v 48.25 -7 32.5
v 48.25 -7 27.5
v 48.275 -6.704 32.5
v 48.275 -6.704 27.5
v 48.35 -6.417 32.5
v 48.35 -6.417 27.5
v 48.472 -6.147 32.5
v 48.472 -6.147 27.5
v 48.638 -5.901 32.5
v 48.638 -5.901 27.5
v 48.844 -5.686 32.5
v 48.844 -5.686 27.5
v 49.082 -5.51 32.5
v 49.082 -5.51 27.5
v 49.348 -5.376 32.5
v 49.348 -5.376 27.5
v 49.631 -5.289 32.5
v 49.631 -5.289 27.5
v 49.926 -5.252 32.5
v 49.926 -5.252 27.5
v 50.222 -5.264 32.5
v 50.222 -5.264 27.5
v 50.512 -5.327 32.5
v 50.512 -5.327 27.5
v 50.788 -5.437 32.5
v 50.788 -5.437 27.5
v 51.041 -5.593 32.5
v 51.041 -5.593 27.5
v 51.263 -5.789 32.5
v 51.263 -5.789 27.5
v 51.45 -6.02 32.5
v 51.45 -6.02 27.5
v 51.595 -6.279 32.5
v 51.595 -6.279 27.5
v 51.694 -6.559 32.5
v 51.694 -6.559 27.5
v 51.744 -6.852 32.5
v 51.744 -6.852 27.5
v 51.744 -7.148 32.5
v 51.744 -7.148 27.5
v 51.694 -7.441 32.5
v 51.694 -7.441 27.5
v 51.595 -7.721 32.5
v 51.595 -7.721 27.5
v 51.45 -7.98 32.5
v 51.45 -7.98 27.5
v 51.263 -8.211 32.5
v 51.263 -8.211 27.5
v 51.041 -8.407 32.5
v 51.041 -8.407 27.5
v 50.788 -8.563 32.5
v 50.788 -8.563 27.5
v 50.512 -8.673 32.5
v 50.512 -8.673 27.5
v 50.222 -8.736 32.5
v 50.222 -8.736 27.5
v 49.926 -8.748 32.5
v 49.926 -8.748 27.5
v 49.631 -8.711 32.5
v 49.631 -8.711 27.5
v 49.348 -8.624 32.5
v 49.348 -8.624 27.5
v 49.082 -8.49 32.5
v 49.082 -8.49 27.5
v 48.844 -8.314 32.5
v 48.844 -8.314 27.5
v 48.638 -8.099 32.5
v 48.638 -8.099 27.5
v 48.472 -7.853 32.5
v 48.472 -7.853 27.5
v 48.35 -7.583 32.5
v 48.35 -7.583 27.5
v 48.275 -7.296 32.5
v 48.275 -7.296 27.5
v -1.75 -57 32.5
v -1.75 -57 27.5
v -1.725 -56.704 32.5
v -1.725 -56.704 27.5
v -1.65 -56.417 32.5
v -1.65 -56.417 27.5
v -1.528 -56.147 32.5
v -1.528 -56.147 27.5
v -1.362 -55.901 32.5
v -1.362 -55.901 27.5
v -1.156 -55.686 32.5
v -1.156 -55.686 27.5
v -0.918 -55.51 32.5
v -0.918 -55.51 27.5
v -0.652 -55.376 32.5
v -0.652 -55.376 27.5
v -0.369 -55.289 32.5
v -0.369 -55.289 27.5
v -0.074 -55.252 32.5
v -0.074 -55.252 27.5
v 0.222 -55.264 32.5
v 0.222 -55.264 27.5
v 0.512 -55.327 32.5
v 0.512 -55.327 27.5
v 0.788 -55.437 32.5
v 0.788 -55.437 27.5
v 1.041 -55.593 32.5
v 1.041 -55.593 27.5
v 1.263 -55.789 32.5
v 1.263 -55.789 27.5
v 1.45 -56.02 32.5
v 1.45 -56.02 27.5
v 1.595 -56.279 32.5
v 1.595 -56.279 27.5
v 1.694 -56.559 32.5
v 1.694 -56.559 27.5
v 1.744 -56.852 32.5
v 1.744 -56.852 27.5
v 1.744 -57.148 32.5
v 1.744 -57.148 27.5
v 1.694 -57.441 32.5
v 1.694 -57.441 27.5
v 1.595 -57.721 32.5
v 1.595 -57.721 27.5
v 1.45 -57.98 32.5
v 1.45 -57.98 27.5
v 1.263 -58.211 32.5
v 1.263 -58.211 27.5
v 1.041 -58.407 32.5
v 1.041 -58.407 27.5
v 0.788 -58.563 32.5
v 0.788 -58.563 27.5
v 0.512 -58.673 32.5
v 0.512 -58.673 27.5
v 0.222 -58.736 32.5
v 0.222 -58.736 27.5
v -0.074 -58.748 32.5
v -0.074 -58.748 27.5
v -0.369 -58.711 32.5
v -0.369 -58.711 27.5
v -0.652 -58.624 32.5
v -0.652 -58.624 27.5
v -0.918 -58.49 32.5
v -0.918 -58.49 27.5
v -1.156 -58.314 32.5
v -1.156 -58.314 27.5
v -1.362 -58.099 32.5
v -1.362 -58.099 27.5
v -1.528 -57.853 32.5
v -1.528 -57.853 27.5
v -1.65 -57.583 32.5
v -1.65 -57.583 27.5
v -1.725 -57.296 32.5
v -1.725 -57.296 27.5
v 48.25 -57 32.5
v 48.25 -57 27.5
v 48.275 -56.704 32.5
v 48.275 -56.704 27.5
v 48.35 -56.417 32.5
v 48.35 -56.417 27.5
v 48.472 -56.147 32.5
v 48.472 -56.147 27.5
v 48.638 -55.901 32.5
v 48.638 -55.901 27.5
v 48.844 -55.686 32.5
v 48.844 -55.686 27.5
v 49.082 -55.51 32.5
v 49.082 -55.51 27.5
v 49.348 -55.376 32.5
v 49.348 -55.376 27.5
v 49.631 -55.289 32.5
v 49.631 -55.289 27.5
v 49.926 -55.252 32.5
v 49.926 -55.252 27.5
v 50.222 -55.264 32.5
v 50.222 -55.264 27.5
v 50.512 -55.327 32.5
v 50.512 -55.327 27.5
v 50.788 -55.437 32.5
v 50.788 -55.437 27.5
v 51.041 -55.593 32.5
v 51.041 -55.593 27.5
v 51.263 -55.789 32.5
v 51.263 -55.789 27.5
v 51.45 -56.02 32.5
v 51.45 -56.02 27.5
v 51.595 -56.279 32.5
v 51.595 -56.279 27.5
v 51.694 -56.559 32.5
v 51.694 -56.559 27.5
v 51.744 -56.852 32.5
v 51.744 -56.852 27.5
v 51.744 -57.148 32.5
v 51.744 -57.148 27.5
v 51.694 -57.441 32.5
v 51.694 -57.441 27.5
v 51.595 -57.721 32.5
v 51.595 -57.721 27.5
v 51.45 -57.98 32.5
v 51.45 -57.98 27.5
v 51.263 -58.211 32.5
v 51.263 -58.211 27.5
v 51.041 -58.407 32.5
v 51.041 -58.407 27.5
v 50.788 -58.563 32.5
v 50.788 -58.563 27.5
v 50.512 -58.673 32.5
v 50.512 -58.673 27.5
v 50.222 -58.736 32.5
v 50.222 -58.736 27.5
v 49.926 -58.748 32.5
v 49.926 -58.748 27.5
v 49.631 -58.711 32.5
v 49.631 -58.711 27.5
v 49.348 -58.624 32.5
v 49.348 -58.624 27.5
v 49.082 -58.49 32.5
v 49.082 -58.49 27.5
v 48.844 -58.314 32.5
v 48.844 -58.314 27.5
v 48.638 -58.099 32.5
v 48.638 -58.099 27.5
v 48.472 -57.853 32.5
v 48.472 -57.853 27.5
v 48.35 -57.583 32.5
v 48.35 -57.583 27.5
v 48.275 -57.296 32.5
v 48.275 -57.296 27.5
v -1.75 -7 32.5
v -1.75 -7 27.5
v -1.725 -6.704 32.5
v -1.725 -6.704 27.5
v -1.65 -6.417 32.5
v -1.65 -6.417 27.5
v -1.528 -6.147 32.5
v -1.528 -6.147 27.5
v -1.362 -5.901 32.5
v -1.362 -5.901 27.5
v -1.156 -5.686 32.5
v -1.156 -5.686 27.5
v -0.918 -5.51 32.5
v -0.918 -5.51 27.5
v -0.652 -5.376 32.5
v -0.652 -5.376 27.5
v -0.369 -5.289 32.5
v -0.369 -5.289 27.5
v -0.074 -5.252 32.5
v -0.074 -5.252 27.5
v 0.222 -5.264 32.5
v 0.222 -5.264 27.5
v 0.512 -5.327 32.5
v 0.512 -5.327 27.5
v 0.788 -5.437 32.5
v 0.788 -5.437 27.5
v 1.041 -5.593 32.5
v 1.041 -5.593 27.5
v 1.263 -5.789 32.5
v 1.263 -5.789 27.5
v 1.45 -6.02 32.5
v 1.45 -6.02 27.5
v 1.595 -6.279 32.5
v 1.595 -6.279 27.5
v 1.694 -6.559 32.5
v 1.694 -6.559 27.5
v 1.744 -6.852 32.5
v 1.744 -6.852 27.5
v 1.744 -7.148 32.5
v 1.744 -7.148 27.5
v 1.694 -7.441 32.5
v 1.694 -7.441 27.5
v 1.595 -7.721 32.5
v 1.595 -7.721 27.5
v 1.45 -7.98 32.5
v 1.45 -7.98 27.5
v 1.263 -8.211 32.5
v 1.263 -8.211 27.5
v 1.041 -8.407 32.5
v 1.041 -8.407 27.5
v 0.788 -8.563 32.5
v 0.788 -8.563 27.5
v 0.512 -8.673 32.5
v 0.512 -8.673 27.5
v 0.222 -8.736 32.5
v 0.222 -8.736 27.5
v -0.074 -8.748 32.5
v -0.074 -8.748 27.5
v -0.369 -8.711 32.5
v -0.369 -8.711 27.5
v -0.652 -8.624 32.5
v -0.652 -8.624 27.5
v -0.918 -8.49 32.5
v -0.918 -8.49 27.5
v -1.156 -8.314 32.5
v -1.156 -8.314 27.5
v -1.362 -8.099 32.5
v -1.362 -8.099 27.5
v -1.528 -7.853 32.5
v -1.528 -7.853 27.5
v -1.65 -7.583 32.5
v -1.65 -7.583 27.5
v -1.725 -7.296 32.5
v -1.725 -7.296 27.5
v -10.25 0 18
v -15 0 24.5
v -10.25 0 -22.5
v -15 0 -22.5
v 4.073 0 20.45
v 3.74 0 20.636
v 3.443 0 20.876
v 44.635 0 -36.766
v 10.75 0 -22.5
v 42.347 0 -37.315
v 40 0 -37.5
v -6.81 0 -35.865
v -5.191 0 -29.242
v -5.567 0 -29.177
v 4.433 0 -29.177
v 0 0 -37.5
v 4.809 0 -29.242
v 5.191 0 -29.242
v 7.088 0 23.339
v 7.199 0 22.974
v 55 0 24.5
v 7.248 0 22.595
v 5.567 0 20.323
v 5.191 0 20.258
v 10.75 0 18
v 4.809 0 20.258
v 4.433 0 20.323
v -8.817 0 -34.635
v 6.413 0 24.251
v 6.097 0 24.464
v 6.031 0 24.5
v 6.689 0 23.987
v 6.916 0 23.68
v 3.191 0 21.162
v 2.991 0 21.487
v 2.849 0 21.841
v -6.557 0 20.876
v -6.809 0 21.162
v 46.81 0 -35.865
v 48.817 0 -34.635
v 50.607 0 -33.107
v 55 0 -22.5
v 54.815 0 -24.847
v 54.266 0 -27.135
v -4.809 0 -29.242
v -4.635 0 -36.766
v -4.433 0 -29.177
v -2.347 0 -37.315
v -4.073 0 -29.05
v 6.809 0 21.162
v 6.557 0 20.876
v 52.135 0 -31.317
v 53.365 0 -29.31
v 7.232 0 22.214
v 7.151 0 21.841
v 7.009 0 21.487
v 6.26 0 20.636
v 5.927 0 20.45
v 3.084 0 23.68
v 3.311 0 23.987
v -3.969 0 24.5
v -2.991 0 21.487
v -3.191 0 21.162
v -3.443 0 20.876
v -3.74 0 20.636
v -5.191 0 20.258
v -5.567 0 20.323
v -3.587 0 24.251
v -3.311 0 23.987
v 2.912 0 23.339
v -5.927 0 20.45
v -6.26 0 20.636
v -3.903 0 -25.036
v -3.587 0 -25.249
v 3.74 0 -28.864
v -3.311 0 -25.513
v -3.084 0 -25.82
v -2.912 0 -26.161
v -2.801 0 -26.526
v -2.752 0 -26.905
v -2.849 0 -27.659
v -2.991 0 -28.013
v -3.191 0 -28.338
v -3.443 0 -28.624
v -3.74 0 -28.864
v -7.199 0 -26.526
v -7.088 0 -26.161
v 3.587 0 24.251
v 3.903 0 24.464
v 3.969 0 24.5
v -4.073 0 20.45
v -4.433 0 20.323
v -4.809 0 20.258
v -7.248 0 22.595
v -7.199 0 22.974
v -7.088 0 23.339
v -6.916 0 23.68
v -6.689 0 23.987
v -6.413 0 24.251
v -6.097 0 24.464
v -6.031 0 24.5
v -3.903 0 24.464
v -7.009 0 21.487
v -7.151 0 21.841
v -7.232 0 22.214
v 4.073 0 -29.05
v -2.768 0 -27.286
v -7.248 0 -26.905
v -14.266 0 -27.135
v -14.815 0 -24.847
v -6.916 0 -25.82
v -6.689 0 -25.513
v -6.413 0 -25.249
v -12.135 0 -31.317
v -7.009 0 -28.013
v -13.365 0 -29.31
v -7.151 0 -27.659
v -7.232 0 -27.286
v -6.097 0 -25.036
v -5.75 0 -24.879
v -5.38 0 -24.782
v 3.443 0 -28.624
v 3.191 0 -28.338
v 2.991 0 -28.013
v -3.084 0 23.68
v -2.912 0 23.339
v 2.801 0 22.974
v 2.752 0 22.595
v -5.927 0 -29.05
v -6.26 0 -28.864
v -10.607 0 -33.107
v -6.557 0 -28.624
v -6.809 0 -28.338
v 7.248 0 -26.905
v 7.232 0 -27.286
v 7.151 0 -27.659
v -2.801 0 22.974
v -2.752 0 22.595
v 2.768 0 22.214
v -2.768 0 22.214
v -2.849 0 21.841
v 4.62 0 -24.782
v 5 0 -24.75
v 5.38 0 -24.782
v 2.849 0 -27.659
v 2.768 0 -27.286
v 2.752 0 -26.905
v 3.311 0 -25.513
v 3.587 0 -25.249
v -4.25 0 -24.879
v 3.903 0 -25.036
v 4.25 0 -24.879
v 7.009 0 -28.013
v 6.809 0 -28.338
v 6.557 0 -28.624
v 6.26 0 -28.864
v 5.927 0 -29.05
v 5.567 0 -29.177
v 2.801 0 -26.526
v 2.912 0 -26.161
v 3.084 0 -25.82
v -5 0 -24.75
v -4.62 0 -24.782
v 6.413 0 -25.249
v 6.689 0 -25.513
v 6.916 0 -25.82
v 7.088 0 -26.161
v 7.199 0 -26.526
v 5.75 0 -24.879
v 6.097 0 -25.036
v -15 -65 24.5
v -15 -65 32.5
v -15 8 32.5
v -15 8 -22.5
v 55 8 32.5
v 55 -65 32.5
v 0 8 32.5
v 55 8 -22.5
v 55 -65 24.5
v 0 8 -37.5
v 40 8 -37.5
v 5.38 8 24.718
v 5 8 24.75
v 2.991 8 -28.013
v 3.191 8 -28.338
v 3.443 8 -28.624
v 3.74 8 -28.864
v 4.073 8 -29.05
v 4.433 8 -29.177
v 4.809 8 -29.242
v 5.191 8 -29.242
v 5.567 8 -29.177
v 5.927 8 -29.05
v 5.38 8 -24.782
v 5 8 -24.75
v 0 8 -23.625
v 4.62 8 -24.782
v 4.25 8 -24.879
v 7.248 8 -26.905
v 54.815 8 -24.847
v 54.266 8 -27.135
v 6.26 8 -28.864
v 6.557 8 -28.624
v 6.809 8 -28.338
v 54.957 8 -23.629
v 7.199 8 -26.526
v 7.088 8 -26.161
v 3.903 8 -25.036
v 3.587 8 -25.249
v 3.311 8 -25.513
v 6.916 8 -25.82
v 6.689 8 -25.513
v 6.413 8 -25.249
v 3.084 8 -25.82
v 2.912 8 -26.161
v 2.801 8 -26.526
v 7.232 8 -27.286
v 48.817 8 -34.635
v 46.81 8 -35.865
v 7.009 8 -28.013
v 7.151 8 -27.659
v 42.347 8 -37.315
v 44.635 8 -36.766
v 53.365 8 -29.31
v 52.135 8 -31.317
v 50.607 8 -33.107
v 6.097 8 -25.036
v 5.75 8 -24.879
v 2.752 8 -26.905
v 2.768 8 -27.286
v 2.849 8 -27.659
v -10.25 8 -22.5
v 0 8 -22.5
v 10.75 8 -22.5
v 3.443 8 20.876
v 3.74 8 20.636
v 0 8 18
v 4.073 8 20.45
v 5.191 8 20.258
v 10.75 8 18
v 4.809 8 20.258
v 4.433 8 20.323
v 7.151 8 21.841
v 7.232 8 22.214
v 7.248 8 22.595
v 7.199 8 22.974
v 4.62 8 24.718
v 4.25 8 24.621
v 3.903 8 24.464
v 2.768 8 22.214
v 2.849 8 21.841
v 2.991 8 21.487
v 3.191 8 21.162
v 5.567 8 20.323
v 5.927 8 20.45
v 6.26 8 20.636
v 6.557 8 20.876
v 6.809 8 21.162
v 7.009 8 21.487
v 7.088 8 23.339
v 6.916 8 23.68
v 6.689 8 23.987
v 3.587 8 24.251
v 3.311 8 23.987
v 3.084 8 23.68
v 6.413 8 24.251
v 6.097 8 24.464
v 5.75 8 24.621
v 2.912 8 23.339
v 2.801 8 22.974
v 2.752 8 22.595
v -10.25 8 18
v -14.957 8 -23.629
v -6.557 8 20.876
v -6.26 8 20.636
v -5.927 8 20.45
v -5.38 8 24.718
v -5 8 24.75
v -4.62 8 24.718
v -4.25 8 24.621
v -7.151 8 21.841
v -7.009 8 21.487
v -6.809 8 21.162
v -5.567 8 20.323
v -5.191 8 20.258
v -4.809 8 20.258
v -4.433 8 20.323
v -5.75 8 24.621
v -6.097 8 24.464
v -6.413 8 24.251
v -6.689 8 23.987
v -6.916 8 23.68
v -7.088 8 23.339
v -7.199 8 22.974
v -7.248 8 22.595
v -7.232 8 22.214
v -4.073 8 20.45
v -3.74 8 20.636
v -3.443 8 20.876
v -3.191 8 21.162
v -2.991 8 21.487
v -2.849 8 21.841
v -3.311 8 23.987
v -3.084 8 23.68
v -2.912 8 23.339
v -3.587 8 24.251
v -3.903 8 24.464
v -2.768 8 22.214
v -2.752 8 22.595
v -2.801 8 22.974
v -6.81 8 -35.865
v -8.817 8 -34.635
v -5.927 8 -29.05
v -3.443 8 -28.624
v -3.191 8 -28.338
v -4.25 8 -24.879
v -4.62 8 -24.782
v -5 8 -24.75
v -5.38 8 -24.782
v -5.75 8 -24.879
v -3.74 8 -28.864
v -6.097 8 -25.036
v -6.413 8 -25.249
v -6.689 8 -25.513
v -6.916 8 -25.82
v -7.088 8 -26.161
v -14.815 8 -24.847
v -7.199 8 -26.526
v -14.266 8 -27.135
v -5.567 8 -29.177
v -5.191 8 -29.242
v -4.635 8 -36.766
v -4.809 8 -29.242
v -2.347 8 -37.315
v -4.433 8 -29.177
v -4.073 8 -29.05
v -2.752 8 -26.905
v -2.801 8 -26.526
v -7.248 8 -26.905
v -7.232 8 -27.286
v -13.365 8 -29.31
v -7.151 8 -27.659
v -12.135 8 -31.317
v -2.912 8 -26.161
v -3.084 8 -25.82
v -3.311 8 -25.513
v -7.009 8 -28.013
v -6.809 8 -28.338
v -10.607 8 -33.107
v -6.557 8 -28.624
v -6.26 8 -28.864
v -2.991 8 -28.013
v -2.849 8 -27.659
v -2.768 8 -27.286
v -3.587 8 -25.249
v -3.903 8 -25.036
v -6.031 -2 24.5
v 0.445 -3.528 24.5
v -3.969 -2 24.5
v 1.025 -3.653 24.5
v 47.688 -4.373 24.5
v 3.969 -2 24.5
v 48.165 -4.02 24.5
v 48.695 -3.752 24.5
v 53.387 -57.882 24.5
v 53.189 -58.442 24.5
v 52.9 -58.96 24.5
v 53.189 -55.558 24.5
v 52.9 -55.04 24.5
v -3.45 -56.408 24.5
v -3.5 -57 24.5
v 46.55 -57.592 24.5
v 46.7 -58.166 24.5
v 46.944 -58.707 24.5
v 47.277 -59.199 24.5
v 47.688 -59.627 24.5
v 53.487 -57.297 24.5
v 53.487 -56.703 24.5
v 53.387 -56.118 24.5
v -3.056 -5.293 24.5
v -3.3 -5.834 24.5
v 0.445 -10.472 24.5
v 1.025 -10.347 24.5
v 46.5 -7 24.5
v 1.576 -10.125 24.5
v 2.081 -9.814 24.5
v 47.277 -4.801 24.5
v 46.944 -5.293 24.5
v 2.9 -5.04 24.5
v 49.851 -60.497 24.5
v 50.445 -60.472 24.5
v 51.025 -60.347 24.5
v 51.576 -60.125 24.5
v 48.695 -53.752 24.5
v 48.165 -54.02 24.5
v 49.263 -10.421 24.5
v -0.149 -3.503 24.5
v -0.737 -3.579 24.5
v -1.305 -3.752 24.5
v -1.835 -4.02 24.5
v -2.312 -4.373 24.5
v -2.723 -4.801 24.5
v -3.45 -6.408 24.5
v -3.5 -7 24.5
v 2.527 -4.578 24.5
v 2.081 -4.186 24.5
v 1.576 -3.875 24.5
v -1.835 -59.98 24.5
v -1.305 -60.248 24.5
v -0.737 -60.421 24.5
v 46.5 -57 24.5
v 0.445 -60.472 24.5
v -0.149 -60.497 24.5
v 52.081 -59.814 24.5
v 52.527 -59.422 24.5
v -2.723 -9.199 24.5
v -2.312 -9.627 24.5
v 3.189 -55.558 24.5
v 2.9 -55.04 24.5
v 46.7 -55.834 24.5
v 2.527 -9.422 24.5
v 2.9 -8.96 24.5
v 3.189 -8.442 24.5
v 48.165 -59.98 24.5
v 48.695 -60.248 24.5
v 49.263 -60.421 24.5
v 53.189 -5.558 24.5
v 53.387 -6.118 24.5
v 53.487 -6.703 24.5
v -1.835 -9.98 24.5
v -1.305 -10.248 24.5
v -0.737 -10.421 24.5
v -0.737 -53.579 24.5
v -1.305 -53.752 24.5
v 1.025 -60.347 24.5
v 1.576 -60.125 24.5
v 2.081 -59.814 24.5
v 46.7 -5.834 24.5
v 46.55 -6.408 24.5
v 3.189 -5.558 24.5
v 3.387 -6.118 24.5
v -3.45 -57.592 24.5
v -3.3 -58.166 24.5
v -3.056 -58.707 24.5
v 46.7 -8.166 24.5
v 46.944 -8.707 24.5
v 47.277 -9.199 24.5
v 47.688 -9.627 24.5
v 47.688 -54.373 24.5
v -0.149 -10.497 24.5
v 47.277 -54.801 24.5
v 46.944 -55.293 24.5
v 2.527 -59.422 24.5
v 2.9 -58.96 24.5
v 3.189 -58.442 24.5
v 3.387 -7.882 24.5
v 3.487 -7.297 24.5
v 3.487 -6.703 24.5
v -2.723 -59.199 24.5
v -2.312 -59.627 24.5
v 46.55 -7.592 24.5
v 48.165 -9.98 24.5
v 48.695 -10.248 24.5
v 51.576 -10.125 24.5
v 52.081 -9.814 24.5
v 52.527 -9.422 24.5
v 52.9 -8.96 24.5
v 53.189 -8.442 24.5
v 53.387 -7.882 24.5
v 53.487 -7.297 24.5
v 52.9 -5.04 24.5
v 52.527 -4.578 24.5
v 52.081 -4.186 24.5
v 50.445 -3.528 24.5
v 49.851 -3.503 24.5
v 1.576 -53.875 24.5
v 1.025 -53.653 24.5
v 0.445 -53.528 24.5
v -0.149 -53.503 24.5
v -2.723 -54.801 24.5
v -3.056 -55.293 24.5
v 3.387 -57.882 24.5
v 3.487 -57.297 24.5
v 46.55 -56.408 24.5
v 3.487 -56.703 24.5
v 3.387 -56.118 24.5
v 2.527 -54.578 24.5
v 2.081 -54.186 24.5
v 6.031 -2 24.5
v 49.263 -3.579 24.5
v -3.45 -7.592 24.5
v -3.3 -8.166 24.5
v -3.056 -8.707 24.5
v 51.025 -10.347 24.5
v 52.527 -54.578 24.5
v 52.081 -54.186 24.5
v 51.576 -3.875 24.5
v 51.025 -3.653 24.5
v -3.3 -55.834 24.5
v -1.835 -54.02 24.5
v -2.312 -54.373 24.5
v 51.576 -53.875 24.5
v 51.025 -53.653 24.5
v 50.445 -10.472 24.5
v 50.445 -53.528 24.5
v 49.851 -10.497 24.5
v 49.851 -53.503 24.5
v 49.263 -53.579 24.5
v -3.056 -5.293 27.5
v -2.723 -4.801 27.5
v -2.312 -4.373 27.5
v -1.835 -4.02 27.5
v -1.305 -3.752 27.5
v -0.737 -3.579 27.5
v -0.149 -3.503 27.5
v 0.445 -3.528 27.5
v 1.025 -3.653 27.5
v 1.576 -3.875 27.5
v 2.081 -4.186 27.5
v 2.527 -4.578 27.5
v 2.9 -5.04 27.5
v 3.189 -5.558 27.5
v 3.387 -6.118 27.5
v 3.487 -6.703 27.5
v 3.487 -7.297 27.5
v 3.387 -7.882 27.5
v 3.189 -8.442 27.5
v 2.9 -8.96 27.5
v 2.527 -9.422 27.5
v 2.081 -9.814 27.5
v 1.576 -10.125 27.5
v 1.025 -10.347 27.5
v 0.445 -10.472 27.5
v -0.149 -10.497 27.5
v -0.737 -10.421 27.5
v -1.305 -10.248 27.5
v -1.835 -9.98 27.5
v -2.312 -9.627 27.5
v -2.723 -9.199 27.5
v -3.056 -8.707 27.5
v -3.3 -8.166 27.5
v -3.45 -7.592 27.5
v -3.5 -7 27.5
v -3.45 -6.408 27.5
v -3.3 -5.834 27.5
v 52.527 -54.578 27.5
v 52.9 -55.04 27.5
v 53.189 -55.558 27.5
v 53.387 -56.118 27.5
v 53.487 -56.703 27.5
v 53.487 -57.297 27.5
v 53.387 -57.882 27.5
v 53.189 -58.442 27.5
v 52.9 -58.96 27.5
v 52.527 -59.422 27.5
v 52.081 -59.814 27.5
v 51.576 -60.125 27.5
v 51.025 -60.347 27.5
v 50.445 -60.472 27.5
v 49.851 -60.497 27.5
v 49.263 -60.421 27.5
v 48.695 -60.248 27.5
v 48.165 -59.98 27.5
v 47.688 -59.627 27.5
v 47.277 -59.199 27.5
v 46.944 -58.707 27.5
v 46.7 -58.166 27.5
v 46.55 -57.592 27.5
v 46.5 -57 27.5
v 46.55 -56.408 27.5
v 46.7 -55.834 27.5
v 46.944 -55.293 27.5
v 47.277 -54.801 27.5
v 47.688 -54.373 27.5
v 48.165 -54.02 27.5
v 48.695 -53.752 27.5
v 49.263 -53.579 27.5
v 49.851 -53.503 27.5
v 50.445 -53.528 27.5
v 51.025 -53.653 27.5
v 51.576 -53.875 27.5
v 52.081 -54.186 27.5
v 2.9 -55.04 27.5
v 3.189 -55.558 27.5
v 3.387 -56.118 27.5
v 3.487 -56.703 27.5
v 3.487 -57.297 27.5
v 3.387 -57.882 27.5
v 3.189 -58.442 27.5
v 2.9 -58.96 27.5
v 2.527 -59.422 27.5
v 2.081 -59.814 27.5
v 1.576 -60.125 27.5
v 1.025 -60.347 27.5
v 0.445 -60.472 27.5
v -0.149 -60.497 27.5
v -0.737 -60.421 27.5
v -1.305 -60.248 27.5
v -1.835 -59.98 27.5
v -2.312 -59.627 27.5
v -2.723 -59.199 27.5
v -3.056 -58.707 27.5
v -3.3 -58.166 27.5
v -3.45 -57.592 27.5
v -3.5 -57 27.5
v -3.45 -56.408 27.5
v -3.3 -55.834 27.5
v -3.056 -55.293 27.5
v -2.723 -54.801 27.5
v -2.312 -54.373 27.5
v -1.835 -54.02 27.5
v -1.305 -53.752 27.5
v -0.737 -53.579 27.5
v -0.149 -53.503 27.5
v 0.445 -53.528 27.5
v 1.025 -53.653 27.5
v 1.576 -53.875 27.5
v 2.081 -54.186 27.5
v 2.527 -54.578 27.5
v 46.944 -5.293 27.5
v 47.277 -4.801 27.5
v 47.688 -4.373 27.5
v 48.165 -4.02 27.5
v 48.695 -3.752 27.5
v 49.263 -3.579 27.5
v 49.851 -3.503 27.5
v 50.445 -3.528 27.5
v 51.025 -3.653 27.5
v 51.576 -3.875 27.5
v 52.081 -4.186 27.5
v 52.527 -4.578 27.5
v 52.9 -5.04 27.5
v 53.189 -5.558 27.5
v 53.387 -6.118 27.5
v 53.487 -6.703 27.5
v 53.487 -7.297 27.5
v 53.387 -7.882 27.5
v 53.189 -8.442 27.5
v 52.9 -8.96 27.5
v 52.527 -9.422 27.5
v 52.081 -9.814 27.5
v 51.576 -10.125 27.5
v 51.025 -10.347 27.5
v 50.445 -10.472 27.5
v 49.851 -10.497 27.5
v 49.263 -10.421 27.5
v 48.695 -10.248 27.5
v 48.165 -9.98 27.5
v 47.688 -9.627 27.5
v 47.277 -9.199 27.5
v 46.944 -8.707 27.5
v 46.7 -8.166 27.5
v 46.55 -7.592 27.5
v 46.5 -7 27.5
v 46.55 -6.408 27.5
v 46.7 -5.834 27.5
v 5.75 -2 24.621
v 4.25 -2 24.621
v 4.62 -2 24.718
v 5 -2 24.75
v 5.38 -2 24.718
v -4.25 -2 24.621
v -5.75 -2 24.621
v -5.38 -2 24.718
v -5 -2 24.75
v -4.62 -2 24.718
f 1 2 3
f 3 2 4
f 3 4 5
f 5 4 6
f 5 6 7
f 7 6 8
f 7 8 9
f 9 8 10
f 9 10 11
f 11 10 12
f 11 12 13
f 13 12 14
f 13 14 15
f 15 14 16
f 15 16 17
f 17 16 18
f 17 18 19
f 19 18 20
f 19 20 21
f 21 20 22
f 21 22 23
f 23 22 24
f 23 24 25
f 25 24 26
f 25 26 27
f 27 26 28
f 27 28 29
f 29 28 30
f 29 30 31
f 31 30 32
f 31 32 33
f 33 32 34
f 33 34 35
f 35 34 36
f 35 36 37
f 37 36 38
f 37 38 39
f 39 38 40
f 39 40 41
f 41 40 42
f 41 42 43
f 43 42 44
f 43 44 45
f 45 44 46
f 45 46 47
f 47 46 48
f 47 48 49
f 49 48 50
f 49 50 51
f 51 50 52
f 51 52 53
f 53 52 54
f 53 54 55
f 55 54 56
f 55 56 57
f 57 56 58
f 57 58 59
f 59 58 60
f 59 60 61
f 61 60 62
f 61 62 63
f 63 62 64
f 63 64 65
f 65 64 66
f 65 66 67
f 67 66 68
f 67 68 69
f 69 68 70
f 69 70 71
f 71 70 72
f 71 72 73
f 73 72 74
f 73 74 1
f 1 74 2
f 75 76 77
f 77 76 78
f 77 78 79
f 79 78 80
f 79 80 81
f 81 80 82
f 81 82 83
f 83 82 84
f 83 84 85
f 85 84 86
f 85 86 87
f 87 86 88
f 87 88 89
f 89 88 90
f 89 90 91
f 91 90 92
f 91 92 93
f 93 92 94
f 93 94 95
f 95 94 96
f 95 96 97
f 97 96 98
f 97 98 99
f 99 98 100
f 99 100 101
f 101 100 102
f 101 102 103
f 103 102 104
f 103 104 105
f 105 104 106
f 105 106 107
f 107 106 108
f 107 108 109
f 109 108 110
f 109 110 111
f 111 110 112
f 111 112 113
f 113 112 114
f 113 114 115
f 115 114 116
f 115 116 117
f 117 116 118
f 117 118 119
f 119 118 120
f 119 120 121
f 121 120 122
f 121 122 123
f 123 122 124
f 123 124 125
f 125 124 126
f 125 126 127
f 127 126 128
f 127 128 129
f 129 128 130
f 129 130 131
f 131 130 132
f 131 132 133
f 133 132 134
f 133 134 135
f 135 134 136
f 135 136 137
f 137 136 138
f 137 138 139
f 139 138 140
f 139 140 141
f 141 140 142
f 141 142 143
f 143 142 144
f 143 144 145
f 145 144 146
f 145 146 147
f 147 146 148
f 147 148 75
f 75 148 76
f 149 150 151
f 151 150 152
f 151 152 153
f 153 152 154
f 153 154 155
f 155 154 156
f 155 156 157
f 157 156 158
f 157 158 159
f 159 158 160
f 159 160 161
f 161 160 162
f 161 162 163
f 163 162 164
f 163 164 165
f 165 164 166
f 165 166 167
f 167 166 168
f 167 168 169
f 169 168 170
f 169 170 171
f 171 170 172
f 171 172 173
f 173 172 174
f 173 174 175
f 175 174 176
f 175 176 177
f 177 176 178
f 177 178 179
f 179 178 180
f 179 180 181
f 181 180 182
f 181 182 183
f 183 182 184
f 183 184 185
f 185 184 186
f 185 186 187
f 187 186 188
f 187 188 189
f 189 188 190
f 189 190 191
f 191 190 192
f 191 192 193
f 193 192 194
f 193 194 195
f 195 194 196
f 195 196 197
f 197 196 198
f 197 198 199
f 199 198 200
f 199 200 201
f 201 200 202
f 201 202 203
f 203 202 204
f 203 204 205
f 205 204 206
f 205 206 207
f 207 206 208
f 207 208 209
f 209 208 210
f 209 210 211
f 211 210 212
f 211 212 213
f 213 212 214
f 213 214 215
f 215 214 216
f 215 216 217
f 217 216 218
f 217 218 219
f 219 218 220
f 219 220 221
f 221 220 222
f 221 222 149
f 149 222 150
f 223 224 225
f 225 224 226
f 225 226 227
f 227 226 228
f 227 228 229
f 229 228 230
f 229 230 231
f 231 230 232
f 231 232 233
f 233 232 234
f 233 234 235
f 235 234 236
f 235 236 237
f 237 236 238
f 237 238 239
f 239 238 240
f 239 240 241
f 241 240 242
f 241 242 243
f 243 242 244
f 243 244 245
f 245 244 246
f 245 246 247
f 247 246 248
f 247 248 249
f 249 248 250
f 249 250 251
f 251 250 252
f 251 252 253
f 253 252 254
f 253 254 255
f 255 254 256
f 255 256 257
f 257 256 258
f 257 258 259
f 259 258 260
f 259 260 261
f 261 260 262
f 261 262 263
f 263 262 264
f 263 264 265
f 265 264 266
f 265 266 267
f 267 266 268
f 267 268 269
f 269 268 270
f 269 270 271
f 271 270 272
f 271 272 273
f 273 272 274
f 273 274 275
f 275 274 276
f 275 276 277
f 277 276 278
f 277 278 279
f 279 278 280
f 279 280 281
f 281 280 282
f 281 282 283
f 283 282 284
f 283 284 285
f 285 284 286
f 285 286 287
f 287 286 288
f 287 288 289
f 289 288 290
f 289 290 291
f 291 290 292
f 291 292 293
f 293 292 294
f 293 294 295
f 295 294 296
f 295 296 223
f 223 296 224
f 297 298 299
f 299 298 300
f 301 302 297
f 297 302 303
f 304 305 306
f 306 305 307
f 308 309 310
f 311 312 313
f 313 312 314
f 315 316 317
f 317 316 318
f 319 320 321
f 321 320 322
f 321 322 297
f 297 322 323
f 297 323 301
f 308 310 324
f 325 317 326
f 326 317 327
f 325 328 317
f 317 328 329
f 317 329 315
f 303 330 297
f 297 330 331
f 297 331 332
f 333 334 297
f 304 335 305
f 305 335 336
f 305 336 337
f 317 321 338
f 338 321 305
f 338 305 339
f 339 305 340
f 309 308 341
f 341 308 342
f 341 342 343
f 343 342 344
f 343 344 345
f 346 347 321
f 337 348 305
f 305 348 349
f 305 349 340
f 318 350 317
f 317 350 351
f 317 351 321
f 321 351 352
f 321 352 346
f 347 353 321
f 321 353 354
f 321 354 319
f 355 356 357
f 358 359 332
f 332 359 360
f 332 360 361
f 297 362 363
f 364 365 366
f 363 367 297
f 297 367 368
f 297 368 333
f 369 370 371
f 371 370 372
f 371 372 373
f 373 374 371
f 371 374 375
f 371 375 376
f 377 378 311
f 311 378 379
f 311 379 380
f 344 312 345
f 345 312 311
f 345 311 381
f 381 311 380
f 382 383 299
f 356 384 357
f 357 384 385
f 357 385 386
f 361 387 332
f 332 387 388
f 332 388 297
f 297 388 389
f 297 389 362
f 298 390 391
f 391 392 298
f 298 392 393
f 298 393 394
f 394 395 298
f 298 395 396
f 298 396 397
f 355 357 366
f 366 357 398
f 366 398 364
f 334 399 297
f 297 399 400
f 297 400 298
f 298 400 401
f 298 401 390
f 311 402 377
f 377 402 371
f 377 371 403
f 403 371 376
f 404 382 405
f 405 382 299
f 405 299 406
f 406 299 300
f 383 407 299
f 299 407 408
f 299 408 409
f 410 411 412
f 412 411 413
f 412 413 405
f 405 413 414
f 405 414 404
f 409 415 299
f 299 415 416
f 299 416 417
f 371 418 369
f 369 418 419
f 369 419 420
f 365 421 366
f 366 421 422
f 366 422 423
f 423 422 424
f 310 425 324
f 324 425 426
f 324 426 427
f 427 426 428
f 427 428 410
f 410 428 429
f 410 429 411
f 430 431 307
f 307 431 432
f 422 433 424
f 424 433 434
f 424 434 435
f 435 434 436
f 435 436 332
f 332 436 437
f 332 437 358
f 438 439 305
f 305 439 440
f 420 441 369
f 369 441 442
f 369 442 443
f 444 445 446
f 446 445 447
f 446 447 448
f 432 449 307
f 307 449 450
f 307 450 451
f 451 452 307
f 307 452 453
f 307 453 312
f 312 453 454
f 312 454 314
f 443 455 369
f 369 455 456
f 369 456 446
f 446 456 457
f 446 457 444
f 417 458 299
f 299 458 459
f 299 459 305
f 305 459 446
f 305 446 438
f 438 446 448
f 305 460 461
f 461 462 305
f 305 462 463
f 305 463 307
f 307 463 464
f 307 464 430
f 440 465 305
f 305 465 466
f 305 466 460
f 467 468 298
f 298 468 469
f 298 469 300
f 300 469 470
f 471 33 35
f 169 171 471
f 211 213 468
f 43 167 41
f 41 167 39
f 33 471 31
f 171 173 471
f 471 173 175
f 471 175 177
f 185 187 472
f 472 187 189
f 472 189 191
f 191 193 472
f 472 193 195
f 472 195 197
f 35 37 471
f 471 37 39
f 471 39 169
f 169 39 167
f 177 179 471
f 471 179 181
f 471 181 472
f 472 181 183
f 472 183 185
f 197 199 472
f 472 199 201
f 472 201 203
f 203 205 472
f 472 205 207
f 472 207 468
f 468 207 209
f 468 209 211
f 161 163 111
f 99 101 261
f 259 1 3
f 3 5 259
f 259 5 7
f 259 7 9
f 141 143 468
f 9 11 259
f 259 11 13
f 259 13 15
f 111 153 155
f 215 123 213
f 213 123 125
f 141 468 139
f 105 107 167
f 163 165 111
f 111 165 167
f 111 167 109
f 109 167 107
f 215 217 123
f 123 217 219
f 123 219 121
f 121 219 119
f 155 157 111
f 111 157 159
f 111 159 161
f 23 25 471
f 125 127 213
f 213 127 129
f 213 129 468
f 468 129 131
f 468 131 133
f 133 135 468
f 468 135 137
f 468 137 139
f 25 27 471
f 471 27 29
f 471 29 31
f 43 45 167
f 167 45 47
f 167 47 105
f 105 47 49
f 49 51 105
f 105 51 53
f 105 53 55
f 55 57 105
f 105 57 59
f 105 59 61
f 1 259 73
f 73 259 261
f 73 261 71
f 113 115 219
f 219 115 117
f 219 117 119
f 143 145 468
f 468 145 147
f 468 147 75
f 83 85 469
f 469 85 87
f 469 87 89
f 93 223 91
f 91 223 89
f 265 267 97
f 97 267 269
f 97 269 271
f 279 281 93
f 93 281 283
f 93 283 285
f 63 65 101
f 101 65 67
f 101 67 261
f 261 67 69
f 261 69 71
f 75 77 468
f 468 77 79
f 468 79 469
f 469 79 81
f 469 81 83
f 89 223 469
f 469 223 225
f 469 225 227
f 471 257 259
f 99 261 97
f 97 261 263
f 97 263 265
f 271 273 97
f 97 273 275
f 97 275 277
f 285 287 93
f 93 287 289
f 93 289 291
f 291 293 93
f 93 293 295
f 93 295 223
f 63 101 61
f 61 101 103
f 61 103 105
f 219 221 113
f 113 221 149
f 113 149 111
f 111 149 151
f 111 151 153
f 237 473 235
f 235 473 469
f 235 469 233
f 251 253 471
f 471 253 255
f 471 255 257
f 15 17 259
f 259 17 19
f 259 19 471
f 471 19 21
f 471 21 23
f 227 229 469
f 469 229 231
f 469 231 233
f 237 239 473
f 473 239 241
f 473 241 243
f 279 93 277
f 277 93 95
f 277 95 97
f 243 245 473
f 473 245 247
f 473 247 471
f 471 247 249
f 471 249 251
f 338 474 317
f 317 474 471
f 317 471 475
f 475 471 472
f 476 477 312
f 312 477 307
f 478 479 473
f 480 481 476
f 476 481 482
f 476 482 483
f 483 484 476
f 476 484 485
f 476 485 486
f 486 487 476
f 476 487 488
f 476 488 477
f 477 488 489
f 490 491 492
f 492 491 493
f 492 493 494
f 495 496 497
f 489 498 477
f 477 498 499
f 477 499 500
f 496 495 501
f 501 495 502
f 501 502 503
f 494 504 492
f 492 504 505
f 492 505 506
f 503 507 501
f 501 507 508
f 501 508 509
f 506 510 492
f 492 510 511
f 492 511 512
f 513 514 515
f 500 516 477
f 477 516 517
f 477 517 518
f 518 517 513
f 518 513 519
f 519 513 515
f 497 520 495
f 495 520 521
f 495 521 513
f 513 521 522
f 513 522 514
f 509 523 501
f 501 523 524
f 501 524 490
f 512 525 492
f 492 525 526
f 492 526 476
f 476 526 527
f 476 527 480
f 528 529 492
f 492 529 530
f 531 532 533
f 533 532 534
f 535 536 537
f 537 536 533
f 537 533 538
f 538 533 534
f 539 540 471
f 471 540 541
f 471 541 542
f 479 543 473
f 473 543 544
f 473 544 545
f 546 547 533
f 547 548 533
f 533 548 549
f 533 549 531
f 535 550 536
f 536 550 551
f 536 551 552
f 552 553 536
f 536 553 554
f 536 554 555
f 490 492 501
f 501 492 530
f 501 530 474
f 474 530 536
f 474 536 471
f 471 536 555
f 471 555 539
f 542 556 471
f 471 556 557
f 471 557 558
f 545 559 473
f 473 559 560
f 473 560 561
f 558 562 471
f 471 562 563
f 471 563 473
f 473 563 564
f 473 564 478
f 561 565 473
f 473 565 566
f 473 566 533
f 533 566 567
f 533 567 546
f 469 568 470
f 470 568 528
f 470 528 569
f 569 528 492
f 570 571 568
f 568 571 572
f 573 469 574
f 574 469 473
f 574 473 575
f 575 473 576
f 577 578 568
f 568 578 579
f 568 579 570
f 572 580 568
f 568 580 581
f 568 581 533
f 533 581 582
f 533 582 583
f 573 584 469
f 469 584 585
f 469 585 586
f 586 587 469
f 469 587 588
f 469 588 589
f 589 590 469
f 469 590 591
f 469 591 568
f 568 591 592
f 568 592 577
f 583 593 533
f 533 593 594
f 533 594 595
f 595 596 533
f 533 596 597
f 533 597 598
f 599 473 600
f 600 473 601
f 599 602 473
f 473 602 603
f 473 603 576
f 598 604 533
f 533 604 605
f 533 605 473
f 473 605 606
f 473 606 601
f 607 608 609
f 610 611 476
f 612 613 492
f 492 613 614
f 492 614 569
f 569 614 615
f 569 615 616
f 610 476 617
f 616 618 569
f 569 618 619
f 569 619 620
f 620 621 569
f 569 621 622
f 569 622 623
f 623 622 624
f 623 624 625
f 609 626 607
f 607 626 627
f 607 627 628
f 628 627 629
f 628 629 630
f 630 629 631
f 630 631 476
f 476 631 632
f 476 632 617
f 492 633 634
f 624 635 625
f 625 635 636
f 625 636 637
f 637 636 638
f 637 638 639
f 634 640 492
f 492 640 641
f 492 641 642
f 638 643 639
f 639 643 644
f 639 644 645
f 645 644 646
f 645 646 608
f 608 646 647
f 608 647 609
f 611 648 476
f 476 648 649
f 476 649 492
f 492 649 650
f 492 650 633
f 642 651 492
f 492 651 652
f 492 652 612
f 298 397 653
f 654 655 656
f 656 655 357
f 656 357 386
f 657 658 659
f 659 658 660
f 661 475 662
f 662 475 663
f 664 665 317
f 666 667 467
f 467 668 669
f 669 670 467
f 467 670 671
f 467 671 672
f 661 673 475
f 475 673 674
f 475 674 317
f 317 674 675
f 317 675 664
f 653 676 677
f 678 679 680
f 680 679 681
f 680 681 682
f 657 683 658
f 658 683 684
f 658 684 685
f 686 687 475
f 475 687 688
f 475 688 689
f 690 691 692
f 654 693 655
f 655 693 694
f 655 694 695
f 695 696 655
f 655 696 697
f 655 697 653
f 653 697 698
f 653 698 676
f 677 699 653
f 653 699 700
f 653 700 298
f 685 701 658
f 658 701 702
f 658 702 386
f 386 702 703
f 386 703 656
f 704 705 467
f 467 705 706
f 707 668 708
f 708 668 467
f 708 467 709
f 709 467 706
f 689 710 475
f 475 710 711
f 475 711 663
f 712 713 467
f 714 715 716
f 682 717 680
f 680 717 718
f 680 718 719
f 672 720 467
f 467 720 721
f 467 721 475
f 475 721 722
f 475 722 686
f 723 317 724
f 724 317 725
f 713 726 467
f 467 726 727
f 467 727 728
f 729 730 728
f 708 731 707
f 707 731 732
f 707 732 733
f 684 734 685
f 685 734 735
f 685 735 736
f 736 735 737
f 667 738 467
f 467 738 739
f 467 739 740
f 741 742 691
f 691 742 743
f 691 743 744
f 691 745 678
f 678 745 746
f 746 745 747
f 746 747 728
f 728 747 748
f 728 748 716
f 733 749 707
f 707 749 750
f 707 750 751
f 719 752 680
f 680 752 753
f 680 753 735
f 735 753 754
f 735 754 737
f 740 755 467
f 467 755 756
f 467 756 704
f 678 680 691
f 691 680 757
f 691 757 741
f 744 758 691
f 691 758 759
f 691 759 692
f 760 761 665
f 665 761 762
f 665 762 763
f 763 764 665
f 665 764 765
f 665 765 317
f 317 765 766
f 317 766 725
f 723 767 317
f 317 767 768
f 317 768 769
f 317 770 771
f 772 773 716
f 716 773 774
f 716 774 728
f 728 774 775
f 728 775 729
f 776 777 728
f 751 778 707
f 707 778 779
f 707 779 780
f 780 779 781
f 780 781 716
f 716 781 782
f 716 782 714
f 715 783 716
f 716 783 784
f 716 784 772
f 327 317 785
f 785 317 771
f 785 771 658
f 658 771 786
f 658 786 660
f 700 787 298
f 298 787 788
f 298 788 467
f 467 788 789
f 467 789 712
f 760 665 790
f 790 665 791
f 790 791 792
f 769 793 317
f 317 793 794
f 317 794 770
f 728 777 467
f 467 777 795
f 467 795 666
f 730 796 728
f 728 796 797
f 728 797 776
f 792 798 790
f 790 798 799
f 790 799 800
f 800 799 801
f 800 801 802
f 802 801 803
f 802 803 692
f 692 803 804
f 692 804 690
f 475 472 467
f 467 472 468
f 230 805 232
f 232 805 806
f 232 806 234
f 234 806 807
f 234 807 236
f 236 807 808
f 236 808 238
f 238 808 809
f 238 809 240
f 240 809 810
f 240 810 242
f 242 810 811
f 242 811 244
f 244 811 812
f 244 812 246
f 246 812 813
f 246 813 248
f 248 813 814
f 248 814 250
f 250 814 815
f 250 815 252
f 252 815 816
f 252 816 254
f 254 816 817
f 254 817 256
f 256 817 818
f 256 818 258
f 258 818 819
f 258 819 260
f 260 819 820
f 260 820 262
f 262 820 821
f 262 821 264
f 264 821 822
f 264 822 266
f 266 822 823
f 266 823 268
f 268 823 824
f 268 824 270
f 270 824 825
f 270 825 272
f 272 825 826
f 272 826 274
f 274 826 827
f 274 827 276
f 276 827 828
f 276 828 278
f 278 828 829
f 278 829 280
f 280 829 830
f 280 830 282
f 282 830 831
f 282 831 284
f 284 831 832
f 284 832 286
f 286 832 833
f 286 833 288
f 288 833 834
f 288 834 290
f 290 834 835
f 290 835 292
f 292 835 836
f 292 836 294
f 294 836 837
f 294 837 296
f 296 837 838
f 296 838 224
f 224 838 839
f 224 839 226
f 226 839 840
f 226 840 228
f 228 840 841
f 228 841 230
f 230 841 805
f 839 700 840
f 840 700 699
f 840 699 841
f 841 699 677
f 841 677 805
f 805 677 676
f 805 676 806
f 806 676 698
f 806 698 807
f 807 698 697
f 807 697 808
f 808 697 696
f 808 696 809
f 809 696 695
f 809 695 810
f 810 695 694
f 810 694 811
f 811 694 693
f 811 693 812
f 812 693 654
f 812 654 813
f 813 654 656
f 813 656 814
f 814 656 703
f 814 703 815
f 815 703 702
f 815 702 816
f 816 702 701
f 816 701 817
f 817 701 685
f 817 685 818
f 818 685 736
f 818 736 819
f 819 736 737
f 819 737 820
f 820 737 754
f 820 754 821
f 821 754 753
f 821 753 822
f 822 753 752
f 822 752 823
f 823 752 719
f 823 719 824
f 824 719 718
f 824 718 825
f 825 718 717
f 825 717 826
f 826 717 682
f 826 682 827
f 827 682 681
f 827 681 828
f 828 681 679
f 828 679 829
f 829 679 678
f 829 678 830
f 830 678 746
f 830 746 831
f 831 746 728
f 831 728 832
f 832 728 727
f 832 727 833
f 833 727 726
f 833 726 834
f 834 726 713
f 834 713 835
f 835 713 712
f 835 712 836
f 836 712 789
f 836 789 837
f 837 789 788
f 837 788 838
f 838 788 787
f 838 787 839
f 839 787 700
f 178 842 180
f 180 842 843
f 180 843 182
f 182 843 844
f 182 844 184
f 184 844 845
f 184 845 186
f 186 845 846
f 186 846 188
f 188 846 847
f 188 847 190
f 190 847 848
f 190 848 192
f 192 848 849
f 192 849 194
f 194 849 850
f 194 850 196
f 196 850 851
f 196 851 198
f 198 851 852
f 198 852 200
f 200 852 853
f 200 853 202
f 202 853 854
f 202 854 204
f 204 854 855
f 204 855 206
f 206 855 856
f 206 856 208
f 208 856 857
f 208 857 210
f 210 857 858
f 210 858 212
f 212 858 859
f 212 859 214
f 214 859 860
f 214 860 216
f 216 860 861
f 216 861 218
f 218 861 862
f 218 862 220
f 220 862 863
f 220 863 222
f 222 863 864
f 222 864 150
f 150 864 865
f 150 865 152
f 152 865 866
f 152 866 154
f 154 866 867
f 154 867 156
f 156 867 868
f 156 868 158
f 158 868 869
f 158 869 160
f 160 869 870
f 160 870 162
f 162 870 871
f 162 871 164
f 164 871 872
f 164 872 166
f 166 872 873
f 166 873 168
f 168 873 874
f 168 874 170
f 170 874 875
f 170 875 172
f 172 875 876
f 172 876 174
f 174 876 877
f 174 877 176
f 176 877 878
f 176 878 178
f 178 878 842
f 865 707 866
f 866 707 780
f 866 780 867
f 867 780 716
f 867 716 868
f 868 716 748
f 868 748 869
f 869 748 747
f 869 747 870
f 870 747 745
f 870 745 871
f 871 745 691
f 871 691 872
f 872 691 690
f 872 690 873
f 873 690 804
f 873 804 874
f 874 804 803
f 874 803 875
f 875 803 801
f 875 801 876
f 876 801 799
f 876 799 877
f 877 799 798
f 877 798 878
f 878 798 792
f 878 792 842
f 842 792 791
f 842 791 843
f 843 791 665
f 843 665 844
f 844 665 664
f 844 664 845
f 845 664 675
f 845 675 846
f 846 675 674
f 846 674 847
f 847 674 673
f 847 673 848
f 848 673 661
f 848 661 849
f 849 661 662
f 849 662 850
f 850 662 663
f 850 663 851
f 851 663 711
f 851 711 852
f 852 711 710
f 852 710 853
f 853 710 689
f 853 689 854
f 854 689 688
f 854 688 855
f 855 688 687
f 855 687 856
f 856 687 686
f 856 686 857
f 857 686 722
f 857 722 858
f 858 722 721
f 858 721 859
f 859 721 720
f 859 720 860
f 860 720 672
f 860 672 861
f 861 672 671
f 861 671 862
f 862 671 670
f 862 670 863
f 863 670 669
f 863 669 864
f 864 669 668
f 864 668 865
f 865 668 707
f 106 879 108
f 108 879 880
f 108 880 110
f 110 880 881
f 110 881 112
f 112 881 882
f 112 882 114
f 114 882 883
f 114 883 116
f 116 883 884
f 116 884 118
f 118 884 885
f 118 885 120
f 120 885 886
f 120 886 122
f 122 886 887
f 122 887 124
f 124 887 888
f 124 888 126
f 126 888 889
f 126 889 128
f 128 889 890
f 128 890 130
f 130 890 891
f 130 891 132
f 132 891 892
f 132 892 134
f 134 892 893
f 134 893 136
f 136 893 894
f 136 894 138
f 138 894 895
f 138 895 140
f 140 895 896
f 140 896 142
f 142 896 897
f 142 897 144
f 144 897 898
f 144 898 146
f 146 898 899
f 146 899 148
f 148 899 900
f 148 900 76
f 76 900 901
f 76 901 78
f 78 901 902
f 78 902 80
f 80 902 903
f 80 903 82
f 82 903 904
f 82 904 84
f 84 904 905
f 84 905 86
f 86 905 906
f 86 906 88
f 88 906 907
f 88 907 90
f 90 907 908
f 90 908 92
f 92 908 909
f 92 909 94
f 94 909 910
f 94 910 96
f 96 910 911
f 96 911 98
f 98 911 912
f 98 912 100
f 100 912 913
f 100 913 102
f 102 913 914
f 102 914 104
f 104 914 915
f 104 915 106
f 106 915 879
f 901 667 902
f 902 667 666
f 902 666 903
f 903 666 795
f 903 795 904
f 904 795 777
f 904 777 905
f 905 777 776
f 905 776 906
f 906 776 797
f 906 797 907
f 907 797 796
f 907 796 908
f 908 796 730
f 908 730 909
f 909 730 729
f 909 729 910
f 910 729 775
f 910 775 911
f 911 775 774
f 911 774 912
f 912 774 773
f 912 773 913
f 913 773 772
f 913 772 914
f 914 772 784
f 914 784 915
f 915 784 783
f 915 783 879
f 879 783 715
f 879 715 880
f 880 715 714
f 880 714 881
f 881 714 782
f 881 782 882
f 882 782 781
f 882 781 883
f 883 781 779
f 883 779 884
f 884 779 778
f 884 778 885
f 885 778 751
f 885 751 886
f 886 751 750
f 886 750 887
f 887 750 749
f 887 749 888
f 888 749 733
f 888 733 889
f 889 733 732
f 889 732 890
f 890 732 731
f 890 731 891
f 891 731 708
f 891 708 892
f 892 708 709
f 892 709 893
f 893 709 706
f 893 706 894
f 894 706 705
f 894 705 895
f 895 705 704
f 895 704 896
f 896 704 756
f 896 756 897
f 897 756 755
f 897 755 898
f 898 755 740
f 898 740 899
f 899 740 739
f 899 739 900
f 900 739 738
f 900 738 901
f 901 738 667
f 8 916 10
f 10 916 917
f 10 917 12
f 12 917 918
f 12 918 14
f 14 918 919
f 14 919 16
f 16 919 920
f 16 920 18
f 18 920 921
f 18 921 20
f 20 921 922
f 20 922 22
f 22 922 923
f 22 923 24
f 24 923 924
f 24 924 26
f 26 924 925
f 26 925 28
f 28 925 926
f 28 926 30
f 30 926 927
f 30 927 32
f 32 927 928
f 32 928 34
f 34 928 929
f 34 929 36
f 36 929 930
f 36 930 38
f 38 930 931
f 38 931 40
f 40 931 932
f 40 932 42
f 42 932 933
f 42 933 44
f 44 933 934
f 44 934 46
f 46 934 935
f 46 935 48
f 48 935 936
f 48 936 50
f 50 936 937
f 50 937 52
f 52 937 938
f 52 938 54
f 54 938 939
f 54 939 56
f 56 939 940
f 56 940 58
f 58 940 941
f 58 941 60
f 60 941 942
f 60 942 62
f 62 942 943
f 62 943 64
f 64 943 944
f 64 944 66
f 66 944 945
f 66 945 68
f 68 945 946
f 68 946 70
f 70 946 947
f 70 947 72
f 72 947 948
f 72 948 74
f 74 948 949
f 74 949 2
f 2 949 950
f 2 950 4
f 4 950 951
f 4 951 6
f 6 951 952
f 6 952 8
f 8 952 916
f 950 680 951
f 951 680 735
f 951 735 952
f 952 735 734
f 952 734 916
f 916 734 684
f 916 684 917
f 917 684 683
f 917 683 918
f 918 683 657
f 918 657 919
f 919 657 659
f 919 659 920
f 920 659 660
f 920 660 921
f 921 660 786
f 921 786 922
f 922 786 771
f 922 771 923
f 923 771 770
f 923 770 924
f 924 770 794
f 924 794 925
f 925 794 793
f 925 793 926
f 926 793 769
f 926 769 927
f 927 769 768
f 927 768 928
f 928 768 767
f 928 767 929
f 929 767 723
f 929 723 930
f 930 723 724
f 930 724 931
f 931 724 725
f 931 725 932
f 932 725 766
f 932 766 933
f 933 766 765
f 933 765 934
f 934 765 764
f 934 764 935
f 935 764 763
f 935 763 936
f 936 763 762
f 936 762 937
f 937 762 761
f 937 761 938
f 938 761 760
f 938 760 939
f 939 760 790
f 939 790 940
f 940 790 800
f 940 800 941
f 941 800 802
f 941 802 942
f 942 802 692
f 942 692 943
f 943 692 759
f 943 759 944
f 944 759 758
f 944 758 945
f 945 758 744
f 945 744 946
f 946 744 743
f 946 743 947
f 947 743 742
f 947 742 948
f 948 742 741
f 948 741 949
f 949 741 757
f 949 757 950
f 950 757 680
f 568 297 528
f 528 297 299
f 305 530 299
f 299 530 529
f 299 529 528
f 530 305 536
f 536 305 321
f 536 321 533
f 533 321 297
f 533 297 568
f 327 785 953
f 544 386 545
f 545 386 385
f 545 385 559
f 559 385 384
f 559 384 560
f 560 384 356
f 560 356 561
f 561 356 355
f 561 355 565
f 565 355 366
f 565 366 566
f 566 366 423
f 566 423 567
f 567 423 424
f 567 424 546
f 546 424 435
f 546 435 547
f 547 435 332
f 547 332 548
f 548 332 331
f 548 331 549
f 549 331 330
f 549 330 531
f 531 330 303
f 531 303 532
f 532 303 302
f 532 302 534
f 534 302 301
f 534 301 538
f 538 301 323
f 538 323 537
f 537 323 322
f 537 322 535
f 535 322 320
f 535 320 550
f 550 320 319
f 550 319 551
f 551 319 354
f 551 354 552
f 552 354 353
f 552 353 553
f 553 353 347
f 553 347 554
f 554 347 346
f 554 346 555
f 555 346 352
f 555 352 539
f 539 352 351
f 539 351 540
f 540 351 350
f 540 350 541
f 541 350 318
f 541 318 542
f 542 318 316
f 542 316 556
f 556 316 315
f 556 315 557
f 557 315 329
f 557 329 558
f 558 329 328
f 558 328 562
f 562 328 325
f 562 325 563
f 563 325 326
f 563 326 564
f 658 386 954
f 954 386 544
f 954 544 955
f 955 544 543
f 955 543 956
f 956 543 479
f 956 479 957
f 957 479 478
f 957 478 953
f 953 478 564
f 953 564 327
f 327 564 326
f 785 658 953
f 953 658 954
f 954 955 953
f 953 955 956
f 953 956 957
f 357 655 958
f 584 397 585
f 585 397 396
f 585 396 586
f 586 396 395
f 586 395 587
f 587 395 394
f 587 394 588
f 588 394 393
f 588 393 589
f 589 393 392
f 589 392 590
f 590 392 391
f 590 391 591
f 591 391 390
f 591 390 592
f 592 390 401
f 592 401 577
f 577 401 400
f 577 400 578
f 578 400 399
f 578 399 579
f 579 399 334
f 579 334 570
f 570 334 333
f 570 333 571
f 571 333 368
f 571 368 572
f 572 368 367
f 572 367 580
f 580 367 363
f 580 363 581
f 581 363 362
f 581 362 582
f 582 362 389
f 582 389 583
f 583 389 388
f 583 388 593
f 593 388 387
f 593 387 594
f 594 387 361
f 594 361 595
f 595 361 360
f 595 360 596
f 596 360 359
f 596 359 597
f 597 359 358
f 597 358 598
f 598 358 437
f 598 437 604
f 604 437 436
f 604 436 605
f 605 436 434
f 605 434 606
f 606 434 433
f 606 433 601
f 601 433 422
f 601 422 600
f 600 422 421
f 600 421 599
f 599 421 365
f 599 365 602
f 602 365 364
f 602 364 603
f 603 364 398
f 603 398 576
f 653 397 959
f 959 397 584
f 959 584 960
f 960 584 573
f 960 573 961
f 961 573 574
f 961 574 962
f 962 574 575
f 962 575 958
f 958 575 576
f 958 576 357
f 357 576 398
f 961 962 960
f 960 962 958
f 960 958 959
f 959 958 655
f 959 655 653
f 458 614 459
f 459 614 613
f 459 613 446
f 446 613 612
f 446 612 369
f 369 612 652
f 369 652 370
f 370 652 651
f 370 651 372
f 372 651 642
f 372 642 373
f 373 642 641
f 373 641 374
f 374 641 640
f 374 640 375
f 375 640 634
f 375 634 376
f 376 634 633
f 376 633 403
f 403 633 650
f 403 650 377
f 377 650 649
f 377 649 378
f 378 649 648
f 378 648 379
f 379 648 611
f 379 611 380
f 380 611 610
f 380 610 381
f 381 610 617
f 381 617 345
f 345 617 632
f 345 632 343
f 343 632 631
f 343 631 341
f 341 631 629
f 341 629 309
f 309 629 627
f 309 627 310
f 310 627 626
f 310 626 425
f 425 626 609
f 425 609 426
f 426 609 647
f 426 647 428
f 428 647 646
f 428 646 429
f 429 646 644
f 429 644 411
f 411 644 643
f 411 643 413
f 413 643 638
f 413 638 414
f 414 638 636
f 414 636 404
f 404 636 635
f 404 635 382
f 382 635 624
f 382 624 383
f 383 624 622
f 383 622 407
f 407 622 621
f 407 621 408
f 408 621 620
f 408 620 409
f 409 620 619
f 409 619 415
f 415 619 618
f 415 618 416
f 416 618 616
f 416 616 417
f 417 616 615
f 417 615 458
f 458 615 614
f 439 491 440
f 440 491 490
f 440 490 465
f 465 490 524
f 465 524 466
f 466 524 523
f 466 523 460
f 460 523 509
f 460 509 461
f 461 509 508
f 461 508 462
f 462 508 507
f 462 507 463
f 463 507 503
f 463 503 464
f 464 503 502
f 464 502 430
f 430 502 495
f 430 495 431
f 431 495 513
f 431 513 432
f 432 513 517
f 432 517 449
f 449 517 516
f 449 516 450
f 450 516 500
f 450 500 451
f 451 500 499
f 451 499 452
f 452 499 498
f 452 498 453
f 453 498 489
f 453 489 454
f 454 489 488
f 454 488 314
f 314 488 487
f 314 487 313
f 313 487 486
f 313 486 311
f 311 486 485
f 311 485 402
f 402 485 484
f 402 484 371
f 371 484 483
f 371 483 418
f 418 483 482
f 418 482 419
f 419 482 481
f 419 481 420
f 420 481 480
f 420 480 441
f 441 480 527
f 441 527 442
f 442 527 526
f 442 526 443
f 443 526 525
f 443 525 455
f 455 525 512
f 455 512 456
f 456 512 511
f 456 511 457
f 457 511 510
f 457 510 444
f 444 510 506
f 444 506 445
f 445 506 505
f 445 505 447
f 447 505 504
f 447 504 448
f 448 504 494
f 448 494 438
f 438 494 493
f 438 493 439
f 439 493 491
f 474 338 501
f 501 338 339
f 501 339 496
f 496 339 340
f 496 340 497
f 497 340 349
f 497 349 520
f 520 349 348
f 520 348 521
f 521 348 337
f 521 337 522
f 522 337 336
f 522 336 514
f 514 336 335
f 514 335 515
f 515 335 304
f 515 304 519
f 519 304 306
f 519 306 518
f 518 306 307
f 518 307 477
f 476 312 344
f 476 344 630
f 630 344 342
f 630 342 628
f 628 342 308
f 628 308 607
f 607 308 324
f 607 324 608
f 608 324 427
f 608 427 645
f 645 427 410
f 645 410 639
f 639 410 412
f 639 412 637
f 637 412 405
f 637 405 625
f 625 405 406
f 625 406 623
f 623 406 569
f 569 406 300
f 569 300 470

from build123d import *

# Parameters (mm, degrees)
SKETCH2_W           = 70
SKETCH2_H           = 70
BOSS_EXTRUDE1_DEPTH = 8
SKETCH4_W           = 70
SKETCH4_H           = 8
BOSS_EXTRUDE2_DEPTH = 65
SKETCH6_R           = 1.75
CUT_EXTRUDE1_DEPTH  = 10
SKETCH7_R           = 3.5
CUT_EXTRUDE2_DEPTH  = 3
SKETCH9_W           = 21
SKETCH9_H           = 40.5
CUT_EXTRUDE3_DEPTH  = 10
SKETCH10_R          = 2.25
CUT_EXTRUDE4_DEPTH  = 10
FILLET1_R           = 15
FILLET2_R           = 15


with BuildPart() as part:
    # Sketch2 → Boss-Extrude1 (new body)
    with BuildSketch(Plane(origin=(0, 0, 0), x_dir=(1, 0, 0), z_dir=(0, 1, 0))):
        with Locations((20, 2.5)):
            Rectangle(SKETCH2_W, SKETCH2_H)
    extrude(amount=BOSS_EXTRUDE1_DEPTH)

    # Sketch4 → Boss-Extrude2 (add)
    with BuildSketch(Plane(origin=(0, 0, 0), x_dir=(-1, 0, 0), z_dir=(0, -1, 0))):
        with Locations((-20, -28.5)):
            Rectangle(SKETCH4_W, SKETCH4_H)
    extrude(amount=BOSS_EXTRUDE2_DEPTH)

    # Sketch6 → Cut-Extrude1 (cut)
    with BuildSketch(Plane(origin=(0, 0, 24.5), x_dir=(-1, 0, 0), z_dir=(0, 0, -1))):
        with Locations((-50, -7)):
            Circle(SKETCH6_R)
        with Locations((0, -7)):
            Circle(SKETCH6_R)
        with Locations((-50, -57)):
            Circle(SKETCH6_R)
        with Locations((0, -57)):
            Circle(SKETCH6_R)
    extrude(amount=-CUT_EXTRUDE1_DEPTH, mode=Mode.SUBTRACT)

    # Sketch7 → Cut-Extrude2 (cut)
    with BuildSketch(Plane(origin=(0, 0, 24.5), x_dir=(-1, 0, 0), z_dir=(0, 0, -1))):
        with Locations((-50, -7)):
            Circle(SKETCH7_R)
        with Locations((0, -7)):
            Circle(SKETCH7_R)
        with Locations((0, -57)):
            Circle(SKETCH7_R)
        with Locations((-50, -57)):
            Circle(SKETCH7_R)
    extrude(amount=-CUT_EXTRUDE2_DEPTH, mode=Mode.SUBTRACT)

    # Sketch9 → Cut-Extrude3 (cut)
    with BuildSketch(Plane(origin=(0, 8, 0), x_dir=(1, 0, 0), z_dir=(0, 1, 0))):
        with Locations((0.25, 2.25)):
            Rectangle(SKETCH9_W, SKETCH9_H)
    extrude(amount=-CUT_EXTRUDE3_DEPTH, mode=Mode.SUBTRACT)

    # Sketch10 → Cut-Extrude4 (cut)
    with BuildSketch(Plane(origin=(0, 8, 0), x_dir=(1, 0, 0), z_dir=(0, 1, 0))):
        with Locations(Location((-5, 27, 0), (0, 0, 270))):
            Circle(SKETCH10_R)
        with Locations(Location((5, 27, 0), (0, 0, 270))):
            Circle(SKETCH10_R)
        with Locations(Location((-5, -22.5, 0), (0, 0, 270))):
            Circle(SKETCH10_R)
        with Locations(Location((5, -22.5, 0), (0, 0, 270))):
            Circle(SKETCH10_R)
    extrude(amount=-CUT_EXTRUDE4_DEPTH, mode=Mode.SUBTRACT)

    # Fillet1
    fillet1_edges = [part.edges().sort_by_distance(p)[0] for p in [
        (55, 4, -37.5),
    ]]
    fillet(fillet1_edges, radius=FILLET1_R)

    # Fillet2
    fillet2_edges = [part.edges().sort_by_distance(p)[0] for p in [
        (-15, 4, -37.5),
    ]]
    fillet(fillet2_edges, radius=FILLET2_R)


solid = part.part
